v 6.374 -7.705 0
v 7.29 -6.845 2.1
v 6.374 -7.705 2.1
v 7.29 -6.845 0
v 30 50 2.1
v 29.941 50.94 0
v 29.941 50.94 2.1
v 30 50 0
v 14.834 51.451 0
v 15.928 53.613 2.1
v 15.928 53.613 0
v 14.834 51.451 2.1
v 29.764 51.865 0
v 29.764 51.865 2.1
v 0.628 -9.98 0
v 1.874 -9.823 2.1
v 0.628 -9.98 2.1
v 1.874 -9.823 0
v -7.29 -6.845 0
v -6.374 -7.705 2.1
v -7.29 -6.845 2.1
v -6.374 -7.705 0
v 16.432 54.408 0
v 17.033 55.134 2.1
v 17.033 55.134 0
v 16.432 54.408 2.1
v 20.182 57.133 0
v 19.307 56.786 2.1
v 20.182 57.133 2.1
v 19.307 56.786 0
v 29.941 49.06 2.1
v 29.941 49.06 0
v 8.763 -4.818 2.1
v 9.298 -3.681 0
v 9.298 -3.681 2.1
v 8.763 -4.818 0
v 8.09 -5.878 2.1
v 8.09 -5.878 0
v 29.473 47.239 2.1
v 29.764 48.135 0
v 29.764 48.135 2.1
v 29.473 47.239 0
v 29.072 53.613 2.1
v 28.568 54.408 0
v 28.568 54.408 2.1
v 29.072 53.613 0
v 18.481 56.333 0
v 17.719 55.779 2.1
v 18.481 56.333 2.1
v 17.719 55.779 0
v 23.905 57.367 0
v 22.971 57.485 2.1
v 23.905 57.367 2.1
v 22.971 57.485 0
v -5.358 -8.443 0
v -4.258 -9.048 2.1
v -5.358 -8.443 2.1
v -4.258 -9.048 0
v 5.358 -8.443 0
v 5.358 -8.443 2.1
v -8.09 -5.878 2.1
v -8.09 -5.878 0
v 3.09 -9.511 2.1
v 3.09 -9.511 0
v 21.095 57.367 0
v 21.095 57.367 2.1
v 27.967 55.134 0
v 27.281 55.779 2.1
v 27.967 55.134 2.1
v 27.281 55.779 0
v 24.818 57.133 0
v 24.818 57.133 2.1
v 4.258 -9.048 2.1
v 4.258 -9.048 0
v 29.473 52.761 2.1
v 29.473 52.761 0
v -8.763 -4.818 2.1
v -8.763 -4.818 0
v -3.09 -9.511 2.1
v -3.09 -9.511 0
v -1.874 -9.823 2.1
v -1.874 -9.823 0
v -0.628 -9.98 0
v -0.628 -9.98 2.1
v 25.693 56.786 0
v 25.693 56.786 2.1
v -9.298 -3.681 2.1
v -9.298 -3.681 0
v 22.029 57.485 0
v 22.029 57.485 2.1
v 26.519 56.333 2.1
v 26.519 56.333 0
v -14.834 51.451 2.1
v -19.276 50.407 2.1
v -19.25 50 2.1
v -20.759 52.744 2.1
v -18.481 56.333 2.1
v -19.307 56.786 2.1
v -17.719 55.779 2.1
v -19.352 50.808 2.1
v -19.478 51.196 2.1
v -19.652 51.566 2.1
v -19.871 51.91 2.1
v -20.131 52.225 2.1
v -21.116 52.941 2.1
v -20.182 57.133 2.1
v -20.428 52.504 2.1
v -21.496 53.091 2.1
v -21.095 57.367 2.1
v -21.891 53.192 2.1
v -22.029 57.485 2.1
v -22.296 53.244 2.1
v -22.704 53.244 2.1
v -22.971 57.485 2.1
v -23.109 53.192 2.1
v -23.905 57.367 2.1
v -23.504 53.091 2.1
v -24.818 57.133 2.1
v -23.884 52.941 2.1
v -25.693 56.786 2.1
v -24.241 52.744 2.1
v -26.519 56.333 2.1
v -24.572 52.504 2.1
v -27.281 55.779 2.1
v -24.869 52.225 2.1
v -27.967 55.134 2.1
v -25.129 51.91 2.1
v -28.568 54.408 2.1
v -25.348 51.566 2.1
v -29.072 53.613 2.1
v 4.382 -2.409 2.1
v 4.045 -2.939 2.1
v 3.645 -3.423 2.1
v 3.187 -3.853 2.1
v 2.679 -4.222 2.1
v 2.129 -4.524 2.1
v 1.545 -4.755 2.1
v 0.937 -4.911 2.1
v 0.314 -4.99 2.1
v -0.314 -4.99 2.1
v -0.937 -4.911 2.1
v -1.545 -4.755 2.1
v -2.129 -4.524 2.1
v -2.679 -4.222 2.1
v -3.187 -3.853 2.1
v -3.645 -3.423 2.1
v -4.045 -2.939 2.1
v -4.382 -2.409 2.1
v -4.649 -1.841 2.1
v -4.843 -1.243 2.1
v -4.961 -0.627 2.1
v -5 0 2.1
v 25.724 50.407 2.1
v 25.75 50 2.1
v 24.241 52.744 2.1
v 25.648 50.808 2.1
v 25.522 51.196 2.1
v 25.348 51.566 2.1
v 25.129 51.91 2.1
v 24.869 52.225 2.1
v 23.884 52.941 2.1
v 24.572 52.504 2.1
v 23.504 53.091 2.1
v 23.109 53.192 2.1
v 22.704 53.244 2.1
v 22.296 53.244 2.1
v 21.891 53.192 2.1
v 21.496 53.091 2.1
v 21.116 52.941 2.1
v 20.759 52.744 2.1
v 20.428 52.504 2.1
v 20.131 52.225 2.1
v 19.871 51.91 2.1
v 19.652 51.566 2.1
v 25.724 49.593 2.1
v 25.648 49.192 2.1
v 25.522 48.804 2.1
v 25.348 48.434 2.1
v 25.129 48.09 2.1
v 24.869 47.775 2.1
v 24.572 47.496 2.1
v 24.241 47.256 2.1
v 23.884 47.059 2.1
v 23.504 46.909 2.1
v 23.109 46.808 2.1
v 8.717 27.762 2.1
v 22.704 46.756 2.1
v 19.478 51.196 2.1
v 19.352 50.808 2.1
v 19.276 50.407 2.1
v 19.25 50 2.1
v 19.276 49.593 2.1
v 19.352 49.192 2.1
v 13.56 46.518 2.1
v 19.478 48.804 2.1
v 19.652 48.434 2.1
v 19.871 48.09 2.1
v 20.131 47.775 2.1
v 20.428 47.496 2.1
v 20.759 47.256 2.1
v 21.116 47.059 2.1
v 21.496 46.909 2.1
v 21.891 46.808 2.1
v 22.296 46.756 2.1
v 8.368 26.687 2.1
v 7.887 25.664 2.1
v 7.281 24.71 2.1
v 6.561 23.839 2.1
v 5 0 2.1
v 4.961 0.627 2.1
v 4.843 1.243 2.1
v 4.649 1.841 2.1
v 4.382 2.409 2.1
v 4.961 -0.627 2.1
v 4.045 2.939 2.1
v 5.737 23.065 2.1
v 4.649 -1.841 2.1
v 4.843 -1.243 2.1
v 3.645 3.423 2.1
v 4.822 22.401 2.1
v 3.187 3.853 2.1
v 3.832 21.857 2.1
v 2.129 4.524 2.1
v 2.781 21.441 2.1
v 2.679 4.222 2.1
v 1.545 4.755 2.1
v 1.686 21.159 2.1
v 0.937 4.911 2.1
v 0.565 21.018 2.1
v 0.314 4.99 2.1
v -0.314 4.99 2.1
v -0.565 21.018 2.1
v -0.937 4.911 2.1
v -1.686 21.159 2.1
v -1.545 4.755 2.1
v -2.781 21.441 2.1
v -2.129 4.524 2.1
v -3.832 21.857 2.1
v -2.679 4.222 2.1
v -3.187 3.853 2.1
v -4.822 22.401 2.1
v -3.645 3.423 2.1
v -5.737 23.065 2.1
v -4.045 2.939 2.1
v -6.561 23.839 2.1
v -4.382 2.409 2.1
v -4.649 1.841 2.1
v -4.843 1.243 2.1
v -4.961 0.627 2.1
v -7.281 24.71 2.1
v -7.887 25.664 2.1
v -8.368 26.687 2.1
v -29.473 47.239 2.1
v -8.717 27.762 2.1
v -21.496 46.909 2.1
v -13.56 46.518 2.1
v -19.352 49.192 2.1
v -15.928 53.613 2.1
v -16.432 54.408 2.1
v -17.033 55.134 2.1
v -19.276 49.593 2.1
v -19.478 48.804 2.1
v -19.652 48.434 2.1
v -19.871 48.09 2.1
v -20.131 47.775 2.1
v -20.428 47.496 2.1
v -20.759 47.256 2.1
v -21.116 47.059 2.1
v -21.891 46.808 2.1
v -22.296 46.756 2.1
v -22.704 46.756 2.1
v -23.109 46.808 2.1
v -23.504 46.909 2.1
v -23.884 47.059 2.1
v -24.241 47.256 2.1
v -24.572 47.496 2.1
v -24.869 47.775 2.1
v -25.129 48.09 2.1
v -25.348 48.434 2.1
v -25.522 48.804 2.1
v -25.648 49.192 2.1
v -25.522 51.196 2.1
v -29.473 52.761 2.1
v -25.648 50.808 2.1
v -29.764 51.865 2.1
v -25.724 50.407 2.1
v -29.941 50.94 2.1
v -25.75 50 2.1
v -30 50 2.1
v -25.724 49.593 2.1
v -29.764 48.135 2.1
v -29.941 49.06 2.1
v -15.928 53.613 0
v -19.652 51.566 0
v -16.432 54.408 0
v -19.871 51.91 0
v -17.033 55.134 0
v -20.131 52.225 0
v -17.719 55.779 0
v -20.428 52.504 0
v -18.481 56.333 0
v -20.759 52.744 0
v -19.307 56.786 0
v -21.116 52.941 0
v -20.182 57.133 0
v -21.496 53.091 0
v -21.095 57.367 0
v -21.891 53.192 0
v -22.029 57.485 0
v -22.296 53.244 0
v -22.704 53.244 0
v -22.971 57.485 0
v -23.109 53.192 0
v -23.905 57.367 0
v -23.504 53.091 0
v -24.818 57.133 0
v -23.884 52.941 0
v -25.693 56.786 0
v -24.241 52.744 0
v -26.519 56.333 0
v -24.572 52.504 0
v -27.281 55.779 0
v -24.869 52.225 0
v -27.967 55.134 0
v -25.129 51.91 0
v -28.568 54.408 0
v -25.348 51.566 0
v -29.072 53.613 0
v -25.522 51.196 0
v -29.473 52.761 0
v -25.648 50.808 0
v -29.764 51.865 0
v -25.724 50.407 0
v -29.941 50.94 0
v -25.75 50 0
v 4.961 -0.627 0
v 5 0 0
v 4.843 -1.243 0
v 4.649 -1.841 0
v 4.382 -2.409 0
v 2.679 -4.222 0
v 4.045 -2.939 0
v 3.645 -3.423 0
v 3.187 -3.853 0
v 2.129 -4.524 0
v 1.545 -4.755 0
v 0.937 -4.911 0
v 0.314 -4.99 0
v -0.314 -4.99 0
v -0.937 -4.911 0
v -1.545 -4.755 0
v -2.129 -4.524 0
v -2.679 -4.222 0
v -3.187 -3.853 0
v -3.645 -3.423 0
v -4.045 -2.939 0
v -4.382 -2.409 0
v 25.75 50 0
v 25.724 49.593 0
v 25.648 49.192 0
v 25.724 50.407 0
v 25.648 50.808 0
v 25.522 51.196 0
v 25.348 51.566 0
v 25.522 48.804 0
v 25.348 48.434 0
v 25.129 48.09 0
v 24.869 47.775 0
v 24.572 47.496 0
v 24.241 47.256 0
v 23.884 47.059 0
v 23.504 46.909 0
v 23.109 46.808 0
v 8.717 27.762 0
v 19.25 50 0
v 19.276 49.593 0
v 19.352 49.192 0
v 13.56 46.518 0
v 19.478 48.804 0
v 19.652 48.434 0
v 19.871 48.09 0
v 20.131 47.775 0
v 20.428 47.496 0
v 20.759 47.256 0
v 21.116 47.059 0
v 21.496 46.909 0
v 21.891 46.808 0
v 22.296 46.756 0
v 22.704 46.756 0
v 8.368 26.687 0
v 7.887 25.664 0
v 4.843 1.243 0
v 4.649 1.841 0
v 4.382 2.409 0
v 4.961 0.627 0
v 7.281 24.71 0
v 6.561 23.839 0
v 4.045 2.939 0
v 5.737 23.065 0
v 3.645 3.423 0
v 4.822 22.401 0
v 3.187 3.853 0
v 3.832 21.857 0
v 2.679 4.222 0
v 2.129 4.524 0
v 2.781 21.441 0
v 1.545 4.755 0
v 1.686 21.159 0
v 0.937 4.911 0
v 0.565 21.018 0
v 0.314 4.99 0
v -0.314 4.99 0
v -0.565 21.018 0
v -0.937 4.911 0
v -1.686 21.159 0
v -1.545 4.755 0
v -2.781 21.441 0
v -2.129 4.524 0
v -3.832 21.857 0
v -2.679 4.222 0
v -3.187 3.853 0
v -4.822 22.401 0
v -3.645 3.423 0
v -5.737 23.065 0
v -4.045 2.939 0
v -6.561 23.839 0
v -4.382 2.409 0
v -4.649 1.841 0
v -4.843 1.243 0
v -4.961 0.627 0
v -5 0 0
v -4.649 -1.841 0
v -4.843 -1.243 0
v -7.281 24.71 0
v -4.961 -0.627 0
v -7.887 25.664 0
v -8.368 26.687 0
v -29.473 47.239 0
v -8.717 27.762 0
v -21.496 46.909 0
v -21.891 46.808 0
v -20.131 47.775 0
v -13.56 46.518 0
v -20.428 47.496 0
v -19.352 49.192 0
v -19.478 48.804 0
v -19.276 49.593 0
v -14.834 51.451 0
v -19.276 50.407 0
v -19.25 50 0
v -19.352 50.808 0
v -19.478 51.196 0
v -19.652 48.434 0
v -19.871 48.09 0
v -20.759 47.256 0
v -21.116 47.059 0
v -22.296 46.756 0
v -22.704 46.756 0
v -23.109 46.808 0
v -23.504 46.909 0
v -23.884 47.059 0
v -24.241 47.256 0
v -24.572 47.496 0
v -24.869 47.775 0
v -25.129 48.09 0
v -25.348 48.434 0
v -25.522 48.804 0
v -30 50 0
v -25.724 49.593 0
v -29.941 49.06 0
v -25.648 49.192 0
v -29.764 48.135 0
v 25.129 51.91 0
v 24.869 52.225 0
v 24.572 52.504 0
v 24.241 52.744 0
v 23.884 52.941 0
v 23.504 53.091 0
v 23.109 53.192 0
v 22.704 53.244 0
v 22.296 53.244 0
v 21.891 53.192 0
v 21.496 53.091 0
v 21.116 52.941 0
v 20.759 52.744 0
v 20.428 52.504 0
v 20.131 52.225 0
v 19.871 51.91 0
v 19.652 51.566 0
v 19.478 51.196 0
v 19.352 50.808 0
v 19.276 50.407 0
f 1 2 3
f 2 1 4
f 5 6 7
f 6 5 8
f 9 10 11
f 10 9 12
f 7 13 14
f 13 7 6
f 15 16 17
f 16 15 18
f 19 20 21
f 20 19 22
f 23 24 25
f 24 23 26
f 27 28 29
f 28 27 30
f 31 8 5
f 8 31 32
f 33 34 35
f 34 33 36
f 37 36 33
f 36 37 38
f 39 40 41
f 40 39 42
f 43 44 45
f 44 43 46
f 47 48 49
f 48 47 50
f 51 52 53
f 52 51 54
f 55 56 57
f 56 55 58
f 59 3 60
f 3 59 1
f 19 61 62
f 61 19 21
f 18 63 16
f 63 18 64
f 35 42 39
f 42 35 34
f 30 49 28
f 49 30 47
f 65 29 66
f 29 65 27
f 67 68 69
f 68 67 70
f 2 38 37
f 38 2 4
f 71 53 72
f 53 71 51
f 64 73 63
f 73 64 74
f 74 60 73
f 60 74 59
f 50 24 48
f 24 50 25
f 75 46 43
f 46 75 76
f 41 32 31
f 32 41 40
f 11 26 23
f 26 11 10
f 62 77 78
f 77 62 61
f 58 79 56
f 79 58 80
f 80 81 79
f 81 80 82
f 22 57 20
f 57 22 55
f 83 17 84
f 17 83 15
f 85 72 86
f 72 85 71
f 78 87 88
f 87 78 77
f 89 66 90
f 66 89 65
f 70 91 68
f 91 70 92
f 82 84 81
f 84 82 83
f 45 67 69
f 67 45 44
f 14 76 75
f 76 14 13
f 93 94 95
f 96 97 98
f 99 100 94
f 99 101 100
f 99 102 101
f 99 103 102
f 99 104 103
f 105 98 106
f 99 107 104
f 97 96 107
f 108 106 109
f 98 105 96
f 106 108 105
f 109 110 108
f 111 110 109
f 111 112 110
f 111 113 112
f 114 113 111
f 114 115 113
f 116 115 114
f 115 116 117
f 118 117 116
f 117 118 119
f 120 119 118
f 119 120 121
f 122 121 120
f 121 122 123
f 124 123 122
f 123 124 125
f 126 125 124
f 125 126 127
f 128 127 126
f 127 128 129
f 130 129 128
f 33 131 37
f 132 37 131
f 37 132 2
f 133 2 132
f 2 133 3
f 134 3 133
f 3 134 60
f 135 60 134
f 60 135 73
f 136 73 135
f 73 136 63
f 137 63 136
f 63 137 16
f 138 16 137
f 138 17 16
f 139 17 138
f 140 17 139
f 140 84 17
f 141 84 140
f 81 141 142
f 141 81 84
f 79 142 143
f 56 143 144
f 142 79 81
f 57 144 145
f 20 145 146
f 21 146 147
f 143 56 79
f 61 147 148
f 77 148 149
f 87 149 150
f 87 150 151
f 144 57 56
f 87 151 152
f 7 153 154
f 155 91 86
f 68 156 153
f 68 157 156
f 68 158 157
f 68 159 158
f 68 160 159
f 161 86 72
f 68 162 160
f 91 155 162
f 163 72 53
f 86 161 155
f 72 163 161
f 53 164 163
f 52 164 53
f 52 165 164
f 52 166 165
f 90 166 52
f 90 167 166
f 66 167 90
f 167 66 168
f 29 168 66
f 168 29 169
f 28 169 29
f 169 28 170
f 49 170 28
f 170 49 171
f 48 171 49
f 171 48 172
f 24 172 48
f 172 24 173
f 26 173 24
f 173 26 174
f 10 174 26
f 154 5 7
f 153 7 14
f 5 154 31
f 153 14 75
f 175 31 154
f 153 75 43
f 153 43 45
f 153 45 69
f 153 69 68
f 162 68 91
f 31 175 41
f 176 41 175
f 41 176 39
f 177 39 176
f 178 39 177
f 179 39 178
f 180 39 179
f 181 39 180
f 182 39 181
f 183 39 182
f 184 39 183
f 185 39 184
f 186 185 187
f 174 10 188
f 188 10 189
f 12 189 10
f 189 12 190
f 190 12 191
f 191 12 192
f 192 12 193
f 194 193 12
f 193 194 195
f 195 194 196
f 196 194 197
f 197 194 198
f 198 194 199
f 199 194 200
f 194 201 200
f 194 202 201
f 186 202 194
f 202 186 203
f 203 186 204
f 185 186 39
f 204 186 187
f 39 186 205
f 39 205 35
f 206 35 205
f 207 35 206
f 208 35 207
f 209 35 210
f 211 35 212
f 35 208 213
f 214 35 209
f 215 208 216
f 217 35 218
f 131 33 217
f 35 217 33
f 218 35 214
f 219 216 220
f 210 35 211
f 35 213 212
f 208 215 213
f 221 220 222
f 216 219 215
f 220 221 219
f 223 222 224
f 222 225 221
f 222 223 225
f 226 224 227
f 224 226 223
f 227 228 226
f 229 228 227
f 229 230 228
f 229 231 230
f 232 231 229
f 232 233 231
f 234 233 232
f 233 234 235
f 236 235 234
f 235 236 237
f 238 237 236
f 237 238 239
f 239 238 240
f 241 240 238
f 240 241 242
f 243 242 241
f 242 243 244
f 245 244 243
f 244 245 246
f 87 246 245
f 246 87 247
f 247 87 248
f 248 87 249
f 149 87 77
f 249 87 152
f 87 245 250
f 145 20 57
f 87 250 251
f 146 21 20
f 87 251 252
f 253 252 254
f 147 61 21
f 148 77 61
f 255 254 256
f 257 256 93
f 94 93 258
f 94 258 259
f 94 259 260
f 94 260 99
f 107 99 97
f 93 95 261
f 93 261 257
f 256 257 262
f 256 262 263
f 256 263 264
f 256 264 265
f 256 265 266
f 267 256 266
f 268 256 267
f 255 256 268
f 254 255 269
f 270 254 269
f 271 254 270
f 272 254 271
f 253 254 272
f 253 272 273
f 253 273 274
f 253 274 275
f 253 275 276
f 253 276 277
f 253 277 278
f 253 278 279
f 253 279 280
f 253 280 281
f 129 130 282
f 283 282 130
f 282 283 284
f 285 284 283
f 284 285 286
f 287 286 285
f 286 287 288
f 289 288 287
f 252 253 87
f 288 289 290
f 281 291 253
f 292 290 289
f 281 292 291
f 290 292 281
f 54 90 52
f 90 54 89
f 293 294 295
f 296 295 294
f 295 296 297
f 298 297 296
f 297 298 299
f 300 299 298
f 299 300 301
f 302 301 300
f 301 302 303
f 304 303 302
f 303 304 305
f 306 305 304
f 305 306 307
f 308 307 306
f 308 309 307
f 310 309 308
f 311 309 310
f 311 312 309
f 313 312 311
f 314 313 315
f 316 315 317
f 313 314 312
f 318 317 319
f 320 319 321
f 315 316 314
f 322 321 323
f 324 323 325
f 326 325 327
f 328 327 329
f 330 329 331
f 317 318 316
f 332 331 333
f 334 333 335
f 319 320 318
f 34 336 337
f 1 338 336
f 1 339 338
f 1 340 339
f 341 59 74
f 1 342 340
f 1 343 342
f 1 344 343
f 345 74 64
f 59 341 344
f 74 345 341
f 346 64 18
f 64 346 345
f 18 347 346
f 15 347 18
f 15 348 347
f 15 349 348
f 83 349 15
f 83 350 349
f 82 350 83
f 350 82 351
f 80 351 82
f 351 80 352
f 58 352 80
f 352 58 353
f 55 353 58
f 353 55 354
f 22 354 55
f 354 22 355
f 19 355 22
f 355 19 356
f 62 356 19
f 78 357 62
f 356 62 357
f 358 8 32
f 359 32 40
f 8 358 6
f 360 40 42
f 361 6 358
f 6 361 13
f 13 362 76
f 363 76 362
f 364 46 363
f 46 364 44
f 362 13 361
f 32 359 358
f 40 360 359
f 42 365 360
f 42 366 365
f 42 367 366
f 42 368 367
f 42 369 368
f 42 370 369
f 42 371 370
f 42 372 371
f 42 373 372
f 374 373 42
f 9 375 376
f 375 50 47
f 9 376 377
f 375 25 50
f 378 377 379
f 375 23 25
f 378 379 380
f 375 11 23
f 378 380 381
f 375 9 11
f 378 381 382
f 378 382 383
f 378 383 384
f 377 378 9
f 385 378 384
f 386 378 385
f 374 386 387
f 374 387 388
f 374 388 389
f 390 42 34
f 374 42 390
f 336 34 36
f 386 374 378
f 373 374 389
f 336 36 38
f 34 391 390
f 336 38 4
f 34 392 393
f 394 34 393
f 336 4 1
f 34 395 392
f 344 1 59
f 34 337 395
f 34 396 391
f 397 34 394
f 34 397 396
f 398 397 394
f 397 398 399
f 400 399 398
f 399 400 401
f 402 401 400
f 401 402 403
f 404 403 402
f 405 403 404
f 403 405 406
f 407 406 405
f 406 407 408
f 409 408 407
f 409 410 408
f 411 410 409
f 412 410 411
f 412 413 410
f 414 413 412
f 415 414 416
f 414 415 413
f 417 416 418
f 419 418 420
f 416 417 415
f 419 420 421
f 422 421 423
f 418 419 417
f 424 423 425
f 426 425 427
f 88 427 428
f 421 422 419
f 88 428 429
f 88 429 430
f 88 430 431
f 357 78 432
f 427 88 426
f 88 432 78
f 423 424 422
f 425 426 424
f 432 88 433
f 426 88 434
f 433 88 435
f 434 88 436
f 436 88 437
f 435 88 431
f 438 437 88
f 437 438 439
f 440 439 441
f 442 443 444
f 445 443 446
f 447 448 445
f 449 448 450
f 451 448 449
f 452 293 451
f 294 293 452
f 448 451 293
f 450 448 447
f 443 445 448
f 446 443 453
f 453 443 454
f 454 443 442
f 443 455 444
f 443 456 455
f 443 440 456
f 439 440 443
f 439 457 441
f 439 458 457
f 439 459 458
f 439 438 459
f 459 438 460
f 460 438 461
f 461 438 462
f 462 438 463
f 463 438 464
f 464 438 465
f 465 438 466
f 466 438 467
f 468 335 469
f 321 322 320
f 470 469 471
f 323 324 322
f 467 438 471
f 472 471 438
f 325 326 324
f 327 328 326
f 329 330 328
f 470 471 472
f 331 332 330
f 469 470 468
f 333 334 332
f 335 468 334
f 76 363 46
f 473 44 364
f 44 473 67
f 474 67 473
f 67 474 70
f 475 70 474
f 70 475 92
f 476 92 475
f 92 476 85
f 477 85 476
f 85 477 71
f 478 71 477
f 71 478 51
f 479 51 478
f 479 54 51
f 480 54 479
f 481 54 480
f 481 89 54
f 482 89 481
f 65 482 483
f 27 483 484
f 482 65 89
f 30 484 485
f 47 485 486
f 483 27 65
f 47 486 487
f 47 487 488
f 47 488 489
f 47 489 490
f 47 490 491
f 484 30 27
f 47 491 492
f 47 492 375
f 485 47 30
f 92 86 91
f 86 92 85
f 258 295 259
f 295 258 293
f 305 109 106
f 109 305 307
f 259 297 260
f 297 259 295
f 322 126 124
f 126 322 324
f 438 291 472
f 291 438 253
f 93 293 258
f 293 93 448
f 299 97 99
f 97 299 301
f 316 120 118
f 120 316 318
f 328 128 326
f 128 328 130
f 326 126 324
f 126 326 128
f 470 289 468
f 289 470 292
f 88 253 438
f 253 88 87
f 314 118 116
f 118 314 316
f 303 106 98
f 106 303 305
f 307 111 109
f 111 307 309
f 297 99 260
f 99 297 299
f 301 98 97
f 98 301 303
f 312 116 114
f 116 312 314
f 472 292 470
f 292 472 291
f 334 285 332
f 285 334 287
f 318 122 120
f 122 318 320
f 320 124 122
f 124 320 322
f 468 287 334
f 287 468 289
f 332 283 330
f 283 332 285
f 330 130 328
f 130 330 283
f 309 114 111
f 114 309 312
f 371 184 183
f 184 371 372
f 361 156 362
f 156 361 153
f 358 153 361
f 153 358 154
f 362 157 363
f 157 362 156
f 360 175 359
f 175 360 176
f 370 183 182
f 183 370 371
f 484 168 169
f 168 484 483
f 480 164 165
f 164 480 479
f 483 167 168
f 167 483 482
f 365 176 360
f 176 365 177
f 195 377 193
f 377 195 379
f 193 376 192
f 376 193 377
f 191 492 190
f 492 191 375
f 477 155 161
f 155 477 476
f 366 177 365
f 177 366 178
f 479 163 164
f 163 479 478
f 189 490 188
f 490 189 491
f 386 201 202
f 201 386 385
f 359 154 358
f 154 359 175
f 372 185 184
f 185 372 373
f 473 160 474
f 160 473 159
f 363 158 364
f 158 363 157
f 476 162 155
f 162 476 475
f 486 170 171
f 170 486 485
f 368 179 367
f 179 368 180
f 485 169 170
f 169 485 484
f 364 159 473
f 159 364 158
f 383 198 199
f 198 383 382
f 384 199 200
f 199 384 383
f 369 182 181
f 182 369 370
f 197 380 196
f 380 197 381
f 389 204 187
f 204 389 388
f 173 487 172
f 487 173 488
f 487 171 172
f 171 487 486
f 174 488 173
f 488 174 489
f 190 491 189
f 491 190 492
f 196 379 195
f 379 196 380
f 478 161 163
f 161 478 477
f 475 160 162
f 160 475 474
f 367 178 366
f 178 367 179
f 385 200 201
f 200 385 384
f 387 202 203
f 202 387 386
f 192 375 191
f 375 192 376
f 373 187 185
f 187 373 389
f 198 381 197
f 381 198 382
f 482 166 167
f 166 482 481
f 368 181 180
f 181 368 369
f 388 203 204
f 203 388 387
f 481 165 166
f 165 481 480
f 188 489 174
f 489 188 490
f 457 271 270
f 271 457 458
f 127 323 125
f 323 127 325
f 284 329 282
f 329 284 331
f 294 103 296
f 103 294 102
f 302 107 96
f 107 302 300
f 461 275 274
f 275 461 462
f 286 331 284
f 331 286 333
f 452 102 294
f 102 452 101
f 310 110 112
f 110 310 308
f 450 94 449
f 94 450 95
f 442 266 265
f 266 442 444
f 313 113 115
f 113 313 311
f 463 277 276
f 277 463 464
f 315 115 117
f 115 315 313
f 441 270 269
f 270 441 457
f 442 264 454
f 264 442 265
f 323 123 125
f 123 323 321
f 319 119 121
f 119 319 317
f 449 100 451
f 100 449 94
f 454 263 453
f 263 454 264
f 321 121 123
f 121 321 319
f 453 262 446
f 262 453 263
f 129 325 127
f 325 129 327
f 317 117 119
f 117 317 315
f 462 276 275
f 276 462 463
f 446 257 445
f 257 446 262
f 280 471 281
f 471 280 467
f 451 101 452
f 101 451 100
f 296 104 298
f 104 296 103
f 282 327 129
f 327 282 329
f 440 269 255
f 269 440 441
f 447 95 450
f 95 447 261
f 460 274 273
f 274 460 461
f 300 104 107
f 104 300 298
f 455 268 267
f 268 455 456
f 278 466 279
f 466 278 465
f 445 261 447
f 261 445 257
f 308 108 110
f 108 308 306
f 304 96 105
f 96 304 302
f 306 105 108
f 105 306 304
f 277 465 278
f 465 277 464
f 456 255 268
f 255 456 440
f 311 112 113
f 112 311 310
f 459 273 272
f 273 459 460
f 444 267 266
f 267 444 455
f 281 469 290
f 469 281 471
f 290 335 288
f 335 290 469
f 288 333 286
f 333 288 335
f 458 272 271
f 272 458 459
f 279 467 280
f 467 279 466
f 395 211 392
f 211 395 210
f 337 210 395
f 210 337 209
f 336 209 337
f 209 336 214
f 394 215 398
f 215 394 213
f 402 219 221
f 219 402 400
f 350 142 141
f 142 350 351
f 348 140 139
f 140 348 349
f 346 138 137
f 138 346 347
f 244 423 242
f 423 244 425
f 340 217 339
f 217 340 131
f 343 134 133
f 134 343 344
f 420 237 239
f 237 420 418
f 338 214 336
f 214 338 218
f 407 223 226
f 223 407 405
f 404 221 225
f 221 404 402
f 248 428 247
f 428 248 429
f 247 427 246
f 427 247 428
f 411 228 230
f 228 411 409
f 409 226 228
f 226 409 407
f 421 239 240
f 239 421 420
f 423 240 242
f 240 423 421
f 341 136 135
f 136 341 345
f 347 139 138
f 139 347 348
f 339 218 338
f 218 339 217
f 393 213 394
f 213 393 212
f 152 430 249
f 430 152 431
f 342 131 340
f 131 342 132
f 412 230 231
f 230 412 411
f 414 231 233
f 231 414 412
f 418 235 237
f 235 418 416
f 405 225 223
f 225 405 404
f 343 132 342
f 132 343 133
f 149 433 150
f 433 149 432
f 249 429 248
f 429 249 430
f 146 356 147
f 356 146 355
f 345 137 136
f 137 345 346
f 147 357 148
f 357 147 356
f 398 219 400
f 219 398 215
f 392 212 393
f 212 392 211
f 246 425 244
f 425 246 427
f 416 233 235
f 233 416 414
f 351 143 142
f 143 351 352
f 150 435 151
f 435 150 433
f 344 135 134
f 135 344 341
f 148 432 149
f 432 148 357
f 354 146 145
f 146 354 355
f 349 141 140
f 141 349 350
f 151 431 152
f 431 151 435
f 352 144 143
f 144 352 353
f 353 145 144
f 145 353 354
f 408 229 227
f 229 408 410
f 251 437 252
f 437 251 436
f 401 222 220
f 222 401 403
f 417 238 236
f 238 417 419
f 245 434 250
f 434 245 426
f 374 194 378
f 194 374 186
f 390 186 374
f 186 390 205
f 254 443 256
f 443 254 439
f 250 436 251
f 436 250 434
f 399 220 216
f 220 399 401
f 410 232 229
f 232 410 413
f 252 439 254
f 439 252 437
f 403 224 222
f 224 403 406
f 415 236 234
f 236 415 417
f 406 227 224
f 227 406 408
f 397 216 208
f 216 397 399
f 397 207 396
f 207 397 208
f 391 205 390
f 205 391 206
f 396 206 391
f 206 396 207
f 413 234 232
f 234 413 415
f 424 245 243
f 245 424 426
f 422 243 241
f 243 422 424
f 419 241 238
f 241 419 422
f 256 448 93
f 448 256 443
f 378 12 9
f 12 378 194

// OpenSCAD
/*
  author: Christopher O'Brien  <obriencj@gmail.com>
  license: GPL v.3
*/



module v_bracket_holes(thick=2.1,
		       gauge_hole_r=3.25, x_hole_space=45,
		       bottom_hole_r=5, y_hole_space=50,
		       cable_hole_r=14,
		       $fn=50) {

     b_offset = x_hole_space / 2;

     translate([0, 0, -0.5]) {
	  if(gauge_hole_r > 0) {
	       translate([b_offset, y_hole_space, 0]) {
		    cylinder(thick+1, r=gauge_hole_r);
	       };
	       translate([-b_offset, y_hole_space, 0]) {
		    cylinder(thick+1, r=gauge_hole_r);
	       };
	  };
	  if(bottom_hole_r > 0) {
	       cylinder(thick+1, r=bottom_hole_r);
	  };

	  // these holes aren't visibile normally, as the V bracket
	  // subtracts the area they'd be in.
	  hull() {
	       small_r = (44 - 26) / 2;
	       translate([0, 30, 0]) {
		    cylinder(thick+1, r=small_r);
	       };

	       translate([0, y_hole_space, 0]) {
		    cylinder(thick+1, r=cable_hole_r);
	       };
	  };
     };
}



module simplified_bracket(thick=2.1,
			  gauge_hole_r=3.25, x_hole_space=45,
			  bottom_hole_r=5, y_hole_space=50,
			  cable_hole_r=14,
			  $fn=50) {

     difference() {
	  linear_extrude(thick) {
	       hull() {
		    circle(r=20/2);
		    translate([0, y_hole_space, 0]) {
			 circle(r=(15 + y_hole_space) / 2);
		    };
	       };
	  };

	  v_bracket_holes(thick, gauge_hole_r, x_hole_space,
			  bottom_hole_r, y_hole_space, cable_hole_r,
			  $fn=$fn);
     };
}


module v_bracket(thick=2.1,
		 gauge_hole_r=3.25, x_hole_space=45,
		 bottom_hole_r=5, y_hole_space=50,
		 $fn=50) {
     /*
       this is the V-shaped bracket that comes with the 2.5" DCC Mini
       Gauges by default.
     */

     // todo: let's make this less of a mess.

     // distance between bolts, split in half since we'll duplicate
     b_offset = x_hole_space / 2;

     difference() {
	  union() {
	       hull() {
		    cylinder(thick, r=20/2);
		    translate([b_offset, y_hole_space, 0]) {
			 cylinder(thick, r=15/2);
		    };
	       };
	       hull() {
		    cylinder(thick, r=20/2);
		    translate([-b_offset, y_hole_space, 0]) {
			 cylinder(thick, r=15/2);
		    };
	       };
	  };

	  // the interior rounded V of the bracket
	  translate([0, 0, -0.5]) {
	       hull() {
		    small_r = (44 - 26) / 2;
		    translate([0, 30, 0]) {
			 cylinder(thick+1, r=small_r);
		    };
		    translate([0, 58, 0]) {
			 cylinder(thick+1, r=32/2);
		    };
	       };
	  };

	  v_bracket_holes(thick,
			  gauge_hole_r, x_hole_space,
			  bottom_hole_r, y_hole_space,
			  $fn=$fn);
     };
}


v_bracket();


// The end.
